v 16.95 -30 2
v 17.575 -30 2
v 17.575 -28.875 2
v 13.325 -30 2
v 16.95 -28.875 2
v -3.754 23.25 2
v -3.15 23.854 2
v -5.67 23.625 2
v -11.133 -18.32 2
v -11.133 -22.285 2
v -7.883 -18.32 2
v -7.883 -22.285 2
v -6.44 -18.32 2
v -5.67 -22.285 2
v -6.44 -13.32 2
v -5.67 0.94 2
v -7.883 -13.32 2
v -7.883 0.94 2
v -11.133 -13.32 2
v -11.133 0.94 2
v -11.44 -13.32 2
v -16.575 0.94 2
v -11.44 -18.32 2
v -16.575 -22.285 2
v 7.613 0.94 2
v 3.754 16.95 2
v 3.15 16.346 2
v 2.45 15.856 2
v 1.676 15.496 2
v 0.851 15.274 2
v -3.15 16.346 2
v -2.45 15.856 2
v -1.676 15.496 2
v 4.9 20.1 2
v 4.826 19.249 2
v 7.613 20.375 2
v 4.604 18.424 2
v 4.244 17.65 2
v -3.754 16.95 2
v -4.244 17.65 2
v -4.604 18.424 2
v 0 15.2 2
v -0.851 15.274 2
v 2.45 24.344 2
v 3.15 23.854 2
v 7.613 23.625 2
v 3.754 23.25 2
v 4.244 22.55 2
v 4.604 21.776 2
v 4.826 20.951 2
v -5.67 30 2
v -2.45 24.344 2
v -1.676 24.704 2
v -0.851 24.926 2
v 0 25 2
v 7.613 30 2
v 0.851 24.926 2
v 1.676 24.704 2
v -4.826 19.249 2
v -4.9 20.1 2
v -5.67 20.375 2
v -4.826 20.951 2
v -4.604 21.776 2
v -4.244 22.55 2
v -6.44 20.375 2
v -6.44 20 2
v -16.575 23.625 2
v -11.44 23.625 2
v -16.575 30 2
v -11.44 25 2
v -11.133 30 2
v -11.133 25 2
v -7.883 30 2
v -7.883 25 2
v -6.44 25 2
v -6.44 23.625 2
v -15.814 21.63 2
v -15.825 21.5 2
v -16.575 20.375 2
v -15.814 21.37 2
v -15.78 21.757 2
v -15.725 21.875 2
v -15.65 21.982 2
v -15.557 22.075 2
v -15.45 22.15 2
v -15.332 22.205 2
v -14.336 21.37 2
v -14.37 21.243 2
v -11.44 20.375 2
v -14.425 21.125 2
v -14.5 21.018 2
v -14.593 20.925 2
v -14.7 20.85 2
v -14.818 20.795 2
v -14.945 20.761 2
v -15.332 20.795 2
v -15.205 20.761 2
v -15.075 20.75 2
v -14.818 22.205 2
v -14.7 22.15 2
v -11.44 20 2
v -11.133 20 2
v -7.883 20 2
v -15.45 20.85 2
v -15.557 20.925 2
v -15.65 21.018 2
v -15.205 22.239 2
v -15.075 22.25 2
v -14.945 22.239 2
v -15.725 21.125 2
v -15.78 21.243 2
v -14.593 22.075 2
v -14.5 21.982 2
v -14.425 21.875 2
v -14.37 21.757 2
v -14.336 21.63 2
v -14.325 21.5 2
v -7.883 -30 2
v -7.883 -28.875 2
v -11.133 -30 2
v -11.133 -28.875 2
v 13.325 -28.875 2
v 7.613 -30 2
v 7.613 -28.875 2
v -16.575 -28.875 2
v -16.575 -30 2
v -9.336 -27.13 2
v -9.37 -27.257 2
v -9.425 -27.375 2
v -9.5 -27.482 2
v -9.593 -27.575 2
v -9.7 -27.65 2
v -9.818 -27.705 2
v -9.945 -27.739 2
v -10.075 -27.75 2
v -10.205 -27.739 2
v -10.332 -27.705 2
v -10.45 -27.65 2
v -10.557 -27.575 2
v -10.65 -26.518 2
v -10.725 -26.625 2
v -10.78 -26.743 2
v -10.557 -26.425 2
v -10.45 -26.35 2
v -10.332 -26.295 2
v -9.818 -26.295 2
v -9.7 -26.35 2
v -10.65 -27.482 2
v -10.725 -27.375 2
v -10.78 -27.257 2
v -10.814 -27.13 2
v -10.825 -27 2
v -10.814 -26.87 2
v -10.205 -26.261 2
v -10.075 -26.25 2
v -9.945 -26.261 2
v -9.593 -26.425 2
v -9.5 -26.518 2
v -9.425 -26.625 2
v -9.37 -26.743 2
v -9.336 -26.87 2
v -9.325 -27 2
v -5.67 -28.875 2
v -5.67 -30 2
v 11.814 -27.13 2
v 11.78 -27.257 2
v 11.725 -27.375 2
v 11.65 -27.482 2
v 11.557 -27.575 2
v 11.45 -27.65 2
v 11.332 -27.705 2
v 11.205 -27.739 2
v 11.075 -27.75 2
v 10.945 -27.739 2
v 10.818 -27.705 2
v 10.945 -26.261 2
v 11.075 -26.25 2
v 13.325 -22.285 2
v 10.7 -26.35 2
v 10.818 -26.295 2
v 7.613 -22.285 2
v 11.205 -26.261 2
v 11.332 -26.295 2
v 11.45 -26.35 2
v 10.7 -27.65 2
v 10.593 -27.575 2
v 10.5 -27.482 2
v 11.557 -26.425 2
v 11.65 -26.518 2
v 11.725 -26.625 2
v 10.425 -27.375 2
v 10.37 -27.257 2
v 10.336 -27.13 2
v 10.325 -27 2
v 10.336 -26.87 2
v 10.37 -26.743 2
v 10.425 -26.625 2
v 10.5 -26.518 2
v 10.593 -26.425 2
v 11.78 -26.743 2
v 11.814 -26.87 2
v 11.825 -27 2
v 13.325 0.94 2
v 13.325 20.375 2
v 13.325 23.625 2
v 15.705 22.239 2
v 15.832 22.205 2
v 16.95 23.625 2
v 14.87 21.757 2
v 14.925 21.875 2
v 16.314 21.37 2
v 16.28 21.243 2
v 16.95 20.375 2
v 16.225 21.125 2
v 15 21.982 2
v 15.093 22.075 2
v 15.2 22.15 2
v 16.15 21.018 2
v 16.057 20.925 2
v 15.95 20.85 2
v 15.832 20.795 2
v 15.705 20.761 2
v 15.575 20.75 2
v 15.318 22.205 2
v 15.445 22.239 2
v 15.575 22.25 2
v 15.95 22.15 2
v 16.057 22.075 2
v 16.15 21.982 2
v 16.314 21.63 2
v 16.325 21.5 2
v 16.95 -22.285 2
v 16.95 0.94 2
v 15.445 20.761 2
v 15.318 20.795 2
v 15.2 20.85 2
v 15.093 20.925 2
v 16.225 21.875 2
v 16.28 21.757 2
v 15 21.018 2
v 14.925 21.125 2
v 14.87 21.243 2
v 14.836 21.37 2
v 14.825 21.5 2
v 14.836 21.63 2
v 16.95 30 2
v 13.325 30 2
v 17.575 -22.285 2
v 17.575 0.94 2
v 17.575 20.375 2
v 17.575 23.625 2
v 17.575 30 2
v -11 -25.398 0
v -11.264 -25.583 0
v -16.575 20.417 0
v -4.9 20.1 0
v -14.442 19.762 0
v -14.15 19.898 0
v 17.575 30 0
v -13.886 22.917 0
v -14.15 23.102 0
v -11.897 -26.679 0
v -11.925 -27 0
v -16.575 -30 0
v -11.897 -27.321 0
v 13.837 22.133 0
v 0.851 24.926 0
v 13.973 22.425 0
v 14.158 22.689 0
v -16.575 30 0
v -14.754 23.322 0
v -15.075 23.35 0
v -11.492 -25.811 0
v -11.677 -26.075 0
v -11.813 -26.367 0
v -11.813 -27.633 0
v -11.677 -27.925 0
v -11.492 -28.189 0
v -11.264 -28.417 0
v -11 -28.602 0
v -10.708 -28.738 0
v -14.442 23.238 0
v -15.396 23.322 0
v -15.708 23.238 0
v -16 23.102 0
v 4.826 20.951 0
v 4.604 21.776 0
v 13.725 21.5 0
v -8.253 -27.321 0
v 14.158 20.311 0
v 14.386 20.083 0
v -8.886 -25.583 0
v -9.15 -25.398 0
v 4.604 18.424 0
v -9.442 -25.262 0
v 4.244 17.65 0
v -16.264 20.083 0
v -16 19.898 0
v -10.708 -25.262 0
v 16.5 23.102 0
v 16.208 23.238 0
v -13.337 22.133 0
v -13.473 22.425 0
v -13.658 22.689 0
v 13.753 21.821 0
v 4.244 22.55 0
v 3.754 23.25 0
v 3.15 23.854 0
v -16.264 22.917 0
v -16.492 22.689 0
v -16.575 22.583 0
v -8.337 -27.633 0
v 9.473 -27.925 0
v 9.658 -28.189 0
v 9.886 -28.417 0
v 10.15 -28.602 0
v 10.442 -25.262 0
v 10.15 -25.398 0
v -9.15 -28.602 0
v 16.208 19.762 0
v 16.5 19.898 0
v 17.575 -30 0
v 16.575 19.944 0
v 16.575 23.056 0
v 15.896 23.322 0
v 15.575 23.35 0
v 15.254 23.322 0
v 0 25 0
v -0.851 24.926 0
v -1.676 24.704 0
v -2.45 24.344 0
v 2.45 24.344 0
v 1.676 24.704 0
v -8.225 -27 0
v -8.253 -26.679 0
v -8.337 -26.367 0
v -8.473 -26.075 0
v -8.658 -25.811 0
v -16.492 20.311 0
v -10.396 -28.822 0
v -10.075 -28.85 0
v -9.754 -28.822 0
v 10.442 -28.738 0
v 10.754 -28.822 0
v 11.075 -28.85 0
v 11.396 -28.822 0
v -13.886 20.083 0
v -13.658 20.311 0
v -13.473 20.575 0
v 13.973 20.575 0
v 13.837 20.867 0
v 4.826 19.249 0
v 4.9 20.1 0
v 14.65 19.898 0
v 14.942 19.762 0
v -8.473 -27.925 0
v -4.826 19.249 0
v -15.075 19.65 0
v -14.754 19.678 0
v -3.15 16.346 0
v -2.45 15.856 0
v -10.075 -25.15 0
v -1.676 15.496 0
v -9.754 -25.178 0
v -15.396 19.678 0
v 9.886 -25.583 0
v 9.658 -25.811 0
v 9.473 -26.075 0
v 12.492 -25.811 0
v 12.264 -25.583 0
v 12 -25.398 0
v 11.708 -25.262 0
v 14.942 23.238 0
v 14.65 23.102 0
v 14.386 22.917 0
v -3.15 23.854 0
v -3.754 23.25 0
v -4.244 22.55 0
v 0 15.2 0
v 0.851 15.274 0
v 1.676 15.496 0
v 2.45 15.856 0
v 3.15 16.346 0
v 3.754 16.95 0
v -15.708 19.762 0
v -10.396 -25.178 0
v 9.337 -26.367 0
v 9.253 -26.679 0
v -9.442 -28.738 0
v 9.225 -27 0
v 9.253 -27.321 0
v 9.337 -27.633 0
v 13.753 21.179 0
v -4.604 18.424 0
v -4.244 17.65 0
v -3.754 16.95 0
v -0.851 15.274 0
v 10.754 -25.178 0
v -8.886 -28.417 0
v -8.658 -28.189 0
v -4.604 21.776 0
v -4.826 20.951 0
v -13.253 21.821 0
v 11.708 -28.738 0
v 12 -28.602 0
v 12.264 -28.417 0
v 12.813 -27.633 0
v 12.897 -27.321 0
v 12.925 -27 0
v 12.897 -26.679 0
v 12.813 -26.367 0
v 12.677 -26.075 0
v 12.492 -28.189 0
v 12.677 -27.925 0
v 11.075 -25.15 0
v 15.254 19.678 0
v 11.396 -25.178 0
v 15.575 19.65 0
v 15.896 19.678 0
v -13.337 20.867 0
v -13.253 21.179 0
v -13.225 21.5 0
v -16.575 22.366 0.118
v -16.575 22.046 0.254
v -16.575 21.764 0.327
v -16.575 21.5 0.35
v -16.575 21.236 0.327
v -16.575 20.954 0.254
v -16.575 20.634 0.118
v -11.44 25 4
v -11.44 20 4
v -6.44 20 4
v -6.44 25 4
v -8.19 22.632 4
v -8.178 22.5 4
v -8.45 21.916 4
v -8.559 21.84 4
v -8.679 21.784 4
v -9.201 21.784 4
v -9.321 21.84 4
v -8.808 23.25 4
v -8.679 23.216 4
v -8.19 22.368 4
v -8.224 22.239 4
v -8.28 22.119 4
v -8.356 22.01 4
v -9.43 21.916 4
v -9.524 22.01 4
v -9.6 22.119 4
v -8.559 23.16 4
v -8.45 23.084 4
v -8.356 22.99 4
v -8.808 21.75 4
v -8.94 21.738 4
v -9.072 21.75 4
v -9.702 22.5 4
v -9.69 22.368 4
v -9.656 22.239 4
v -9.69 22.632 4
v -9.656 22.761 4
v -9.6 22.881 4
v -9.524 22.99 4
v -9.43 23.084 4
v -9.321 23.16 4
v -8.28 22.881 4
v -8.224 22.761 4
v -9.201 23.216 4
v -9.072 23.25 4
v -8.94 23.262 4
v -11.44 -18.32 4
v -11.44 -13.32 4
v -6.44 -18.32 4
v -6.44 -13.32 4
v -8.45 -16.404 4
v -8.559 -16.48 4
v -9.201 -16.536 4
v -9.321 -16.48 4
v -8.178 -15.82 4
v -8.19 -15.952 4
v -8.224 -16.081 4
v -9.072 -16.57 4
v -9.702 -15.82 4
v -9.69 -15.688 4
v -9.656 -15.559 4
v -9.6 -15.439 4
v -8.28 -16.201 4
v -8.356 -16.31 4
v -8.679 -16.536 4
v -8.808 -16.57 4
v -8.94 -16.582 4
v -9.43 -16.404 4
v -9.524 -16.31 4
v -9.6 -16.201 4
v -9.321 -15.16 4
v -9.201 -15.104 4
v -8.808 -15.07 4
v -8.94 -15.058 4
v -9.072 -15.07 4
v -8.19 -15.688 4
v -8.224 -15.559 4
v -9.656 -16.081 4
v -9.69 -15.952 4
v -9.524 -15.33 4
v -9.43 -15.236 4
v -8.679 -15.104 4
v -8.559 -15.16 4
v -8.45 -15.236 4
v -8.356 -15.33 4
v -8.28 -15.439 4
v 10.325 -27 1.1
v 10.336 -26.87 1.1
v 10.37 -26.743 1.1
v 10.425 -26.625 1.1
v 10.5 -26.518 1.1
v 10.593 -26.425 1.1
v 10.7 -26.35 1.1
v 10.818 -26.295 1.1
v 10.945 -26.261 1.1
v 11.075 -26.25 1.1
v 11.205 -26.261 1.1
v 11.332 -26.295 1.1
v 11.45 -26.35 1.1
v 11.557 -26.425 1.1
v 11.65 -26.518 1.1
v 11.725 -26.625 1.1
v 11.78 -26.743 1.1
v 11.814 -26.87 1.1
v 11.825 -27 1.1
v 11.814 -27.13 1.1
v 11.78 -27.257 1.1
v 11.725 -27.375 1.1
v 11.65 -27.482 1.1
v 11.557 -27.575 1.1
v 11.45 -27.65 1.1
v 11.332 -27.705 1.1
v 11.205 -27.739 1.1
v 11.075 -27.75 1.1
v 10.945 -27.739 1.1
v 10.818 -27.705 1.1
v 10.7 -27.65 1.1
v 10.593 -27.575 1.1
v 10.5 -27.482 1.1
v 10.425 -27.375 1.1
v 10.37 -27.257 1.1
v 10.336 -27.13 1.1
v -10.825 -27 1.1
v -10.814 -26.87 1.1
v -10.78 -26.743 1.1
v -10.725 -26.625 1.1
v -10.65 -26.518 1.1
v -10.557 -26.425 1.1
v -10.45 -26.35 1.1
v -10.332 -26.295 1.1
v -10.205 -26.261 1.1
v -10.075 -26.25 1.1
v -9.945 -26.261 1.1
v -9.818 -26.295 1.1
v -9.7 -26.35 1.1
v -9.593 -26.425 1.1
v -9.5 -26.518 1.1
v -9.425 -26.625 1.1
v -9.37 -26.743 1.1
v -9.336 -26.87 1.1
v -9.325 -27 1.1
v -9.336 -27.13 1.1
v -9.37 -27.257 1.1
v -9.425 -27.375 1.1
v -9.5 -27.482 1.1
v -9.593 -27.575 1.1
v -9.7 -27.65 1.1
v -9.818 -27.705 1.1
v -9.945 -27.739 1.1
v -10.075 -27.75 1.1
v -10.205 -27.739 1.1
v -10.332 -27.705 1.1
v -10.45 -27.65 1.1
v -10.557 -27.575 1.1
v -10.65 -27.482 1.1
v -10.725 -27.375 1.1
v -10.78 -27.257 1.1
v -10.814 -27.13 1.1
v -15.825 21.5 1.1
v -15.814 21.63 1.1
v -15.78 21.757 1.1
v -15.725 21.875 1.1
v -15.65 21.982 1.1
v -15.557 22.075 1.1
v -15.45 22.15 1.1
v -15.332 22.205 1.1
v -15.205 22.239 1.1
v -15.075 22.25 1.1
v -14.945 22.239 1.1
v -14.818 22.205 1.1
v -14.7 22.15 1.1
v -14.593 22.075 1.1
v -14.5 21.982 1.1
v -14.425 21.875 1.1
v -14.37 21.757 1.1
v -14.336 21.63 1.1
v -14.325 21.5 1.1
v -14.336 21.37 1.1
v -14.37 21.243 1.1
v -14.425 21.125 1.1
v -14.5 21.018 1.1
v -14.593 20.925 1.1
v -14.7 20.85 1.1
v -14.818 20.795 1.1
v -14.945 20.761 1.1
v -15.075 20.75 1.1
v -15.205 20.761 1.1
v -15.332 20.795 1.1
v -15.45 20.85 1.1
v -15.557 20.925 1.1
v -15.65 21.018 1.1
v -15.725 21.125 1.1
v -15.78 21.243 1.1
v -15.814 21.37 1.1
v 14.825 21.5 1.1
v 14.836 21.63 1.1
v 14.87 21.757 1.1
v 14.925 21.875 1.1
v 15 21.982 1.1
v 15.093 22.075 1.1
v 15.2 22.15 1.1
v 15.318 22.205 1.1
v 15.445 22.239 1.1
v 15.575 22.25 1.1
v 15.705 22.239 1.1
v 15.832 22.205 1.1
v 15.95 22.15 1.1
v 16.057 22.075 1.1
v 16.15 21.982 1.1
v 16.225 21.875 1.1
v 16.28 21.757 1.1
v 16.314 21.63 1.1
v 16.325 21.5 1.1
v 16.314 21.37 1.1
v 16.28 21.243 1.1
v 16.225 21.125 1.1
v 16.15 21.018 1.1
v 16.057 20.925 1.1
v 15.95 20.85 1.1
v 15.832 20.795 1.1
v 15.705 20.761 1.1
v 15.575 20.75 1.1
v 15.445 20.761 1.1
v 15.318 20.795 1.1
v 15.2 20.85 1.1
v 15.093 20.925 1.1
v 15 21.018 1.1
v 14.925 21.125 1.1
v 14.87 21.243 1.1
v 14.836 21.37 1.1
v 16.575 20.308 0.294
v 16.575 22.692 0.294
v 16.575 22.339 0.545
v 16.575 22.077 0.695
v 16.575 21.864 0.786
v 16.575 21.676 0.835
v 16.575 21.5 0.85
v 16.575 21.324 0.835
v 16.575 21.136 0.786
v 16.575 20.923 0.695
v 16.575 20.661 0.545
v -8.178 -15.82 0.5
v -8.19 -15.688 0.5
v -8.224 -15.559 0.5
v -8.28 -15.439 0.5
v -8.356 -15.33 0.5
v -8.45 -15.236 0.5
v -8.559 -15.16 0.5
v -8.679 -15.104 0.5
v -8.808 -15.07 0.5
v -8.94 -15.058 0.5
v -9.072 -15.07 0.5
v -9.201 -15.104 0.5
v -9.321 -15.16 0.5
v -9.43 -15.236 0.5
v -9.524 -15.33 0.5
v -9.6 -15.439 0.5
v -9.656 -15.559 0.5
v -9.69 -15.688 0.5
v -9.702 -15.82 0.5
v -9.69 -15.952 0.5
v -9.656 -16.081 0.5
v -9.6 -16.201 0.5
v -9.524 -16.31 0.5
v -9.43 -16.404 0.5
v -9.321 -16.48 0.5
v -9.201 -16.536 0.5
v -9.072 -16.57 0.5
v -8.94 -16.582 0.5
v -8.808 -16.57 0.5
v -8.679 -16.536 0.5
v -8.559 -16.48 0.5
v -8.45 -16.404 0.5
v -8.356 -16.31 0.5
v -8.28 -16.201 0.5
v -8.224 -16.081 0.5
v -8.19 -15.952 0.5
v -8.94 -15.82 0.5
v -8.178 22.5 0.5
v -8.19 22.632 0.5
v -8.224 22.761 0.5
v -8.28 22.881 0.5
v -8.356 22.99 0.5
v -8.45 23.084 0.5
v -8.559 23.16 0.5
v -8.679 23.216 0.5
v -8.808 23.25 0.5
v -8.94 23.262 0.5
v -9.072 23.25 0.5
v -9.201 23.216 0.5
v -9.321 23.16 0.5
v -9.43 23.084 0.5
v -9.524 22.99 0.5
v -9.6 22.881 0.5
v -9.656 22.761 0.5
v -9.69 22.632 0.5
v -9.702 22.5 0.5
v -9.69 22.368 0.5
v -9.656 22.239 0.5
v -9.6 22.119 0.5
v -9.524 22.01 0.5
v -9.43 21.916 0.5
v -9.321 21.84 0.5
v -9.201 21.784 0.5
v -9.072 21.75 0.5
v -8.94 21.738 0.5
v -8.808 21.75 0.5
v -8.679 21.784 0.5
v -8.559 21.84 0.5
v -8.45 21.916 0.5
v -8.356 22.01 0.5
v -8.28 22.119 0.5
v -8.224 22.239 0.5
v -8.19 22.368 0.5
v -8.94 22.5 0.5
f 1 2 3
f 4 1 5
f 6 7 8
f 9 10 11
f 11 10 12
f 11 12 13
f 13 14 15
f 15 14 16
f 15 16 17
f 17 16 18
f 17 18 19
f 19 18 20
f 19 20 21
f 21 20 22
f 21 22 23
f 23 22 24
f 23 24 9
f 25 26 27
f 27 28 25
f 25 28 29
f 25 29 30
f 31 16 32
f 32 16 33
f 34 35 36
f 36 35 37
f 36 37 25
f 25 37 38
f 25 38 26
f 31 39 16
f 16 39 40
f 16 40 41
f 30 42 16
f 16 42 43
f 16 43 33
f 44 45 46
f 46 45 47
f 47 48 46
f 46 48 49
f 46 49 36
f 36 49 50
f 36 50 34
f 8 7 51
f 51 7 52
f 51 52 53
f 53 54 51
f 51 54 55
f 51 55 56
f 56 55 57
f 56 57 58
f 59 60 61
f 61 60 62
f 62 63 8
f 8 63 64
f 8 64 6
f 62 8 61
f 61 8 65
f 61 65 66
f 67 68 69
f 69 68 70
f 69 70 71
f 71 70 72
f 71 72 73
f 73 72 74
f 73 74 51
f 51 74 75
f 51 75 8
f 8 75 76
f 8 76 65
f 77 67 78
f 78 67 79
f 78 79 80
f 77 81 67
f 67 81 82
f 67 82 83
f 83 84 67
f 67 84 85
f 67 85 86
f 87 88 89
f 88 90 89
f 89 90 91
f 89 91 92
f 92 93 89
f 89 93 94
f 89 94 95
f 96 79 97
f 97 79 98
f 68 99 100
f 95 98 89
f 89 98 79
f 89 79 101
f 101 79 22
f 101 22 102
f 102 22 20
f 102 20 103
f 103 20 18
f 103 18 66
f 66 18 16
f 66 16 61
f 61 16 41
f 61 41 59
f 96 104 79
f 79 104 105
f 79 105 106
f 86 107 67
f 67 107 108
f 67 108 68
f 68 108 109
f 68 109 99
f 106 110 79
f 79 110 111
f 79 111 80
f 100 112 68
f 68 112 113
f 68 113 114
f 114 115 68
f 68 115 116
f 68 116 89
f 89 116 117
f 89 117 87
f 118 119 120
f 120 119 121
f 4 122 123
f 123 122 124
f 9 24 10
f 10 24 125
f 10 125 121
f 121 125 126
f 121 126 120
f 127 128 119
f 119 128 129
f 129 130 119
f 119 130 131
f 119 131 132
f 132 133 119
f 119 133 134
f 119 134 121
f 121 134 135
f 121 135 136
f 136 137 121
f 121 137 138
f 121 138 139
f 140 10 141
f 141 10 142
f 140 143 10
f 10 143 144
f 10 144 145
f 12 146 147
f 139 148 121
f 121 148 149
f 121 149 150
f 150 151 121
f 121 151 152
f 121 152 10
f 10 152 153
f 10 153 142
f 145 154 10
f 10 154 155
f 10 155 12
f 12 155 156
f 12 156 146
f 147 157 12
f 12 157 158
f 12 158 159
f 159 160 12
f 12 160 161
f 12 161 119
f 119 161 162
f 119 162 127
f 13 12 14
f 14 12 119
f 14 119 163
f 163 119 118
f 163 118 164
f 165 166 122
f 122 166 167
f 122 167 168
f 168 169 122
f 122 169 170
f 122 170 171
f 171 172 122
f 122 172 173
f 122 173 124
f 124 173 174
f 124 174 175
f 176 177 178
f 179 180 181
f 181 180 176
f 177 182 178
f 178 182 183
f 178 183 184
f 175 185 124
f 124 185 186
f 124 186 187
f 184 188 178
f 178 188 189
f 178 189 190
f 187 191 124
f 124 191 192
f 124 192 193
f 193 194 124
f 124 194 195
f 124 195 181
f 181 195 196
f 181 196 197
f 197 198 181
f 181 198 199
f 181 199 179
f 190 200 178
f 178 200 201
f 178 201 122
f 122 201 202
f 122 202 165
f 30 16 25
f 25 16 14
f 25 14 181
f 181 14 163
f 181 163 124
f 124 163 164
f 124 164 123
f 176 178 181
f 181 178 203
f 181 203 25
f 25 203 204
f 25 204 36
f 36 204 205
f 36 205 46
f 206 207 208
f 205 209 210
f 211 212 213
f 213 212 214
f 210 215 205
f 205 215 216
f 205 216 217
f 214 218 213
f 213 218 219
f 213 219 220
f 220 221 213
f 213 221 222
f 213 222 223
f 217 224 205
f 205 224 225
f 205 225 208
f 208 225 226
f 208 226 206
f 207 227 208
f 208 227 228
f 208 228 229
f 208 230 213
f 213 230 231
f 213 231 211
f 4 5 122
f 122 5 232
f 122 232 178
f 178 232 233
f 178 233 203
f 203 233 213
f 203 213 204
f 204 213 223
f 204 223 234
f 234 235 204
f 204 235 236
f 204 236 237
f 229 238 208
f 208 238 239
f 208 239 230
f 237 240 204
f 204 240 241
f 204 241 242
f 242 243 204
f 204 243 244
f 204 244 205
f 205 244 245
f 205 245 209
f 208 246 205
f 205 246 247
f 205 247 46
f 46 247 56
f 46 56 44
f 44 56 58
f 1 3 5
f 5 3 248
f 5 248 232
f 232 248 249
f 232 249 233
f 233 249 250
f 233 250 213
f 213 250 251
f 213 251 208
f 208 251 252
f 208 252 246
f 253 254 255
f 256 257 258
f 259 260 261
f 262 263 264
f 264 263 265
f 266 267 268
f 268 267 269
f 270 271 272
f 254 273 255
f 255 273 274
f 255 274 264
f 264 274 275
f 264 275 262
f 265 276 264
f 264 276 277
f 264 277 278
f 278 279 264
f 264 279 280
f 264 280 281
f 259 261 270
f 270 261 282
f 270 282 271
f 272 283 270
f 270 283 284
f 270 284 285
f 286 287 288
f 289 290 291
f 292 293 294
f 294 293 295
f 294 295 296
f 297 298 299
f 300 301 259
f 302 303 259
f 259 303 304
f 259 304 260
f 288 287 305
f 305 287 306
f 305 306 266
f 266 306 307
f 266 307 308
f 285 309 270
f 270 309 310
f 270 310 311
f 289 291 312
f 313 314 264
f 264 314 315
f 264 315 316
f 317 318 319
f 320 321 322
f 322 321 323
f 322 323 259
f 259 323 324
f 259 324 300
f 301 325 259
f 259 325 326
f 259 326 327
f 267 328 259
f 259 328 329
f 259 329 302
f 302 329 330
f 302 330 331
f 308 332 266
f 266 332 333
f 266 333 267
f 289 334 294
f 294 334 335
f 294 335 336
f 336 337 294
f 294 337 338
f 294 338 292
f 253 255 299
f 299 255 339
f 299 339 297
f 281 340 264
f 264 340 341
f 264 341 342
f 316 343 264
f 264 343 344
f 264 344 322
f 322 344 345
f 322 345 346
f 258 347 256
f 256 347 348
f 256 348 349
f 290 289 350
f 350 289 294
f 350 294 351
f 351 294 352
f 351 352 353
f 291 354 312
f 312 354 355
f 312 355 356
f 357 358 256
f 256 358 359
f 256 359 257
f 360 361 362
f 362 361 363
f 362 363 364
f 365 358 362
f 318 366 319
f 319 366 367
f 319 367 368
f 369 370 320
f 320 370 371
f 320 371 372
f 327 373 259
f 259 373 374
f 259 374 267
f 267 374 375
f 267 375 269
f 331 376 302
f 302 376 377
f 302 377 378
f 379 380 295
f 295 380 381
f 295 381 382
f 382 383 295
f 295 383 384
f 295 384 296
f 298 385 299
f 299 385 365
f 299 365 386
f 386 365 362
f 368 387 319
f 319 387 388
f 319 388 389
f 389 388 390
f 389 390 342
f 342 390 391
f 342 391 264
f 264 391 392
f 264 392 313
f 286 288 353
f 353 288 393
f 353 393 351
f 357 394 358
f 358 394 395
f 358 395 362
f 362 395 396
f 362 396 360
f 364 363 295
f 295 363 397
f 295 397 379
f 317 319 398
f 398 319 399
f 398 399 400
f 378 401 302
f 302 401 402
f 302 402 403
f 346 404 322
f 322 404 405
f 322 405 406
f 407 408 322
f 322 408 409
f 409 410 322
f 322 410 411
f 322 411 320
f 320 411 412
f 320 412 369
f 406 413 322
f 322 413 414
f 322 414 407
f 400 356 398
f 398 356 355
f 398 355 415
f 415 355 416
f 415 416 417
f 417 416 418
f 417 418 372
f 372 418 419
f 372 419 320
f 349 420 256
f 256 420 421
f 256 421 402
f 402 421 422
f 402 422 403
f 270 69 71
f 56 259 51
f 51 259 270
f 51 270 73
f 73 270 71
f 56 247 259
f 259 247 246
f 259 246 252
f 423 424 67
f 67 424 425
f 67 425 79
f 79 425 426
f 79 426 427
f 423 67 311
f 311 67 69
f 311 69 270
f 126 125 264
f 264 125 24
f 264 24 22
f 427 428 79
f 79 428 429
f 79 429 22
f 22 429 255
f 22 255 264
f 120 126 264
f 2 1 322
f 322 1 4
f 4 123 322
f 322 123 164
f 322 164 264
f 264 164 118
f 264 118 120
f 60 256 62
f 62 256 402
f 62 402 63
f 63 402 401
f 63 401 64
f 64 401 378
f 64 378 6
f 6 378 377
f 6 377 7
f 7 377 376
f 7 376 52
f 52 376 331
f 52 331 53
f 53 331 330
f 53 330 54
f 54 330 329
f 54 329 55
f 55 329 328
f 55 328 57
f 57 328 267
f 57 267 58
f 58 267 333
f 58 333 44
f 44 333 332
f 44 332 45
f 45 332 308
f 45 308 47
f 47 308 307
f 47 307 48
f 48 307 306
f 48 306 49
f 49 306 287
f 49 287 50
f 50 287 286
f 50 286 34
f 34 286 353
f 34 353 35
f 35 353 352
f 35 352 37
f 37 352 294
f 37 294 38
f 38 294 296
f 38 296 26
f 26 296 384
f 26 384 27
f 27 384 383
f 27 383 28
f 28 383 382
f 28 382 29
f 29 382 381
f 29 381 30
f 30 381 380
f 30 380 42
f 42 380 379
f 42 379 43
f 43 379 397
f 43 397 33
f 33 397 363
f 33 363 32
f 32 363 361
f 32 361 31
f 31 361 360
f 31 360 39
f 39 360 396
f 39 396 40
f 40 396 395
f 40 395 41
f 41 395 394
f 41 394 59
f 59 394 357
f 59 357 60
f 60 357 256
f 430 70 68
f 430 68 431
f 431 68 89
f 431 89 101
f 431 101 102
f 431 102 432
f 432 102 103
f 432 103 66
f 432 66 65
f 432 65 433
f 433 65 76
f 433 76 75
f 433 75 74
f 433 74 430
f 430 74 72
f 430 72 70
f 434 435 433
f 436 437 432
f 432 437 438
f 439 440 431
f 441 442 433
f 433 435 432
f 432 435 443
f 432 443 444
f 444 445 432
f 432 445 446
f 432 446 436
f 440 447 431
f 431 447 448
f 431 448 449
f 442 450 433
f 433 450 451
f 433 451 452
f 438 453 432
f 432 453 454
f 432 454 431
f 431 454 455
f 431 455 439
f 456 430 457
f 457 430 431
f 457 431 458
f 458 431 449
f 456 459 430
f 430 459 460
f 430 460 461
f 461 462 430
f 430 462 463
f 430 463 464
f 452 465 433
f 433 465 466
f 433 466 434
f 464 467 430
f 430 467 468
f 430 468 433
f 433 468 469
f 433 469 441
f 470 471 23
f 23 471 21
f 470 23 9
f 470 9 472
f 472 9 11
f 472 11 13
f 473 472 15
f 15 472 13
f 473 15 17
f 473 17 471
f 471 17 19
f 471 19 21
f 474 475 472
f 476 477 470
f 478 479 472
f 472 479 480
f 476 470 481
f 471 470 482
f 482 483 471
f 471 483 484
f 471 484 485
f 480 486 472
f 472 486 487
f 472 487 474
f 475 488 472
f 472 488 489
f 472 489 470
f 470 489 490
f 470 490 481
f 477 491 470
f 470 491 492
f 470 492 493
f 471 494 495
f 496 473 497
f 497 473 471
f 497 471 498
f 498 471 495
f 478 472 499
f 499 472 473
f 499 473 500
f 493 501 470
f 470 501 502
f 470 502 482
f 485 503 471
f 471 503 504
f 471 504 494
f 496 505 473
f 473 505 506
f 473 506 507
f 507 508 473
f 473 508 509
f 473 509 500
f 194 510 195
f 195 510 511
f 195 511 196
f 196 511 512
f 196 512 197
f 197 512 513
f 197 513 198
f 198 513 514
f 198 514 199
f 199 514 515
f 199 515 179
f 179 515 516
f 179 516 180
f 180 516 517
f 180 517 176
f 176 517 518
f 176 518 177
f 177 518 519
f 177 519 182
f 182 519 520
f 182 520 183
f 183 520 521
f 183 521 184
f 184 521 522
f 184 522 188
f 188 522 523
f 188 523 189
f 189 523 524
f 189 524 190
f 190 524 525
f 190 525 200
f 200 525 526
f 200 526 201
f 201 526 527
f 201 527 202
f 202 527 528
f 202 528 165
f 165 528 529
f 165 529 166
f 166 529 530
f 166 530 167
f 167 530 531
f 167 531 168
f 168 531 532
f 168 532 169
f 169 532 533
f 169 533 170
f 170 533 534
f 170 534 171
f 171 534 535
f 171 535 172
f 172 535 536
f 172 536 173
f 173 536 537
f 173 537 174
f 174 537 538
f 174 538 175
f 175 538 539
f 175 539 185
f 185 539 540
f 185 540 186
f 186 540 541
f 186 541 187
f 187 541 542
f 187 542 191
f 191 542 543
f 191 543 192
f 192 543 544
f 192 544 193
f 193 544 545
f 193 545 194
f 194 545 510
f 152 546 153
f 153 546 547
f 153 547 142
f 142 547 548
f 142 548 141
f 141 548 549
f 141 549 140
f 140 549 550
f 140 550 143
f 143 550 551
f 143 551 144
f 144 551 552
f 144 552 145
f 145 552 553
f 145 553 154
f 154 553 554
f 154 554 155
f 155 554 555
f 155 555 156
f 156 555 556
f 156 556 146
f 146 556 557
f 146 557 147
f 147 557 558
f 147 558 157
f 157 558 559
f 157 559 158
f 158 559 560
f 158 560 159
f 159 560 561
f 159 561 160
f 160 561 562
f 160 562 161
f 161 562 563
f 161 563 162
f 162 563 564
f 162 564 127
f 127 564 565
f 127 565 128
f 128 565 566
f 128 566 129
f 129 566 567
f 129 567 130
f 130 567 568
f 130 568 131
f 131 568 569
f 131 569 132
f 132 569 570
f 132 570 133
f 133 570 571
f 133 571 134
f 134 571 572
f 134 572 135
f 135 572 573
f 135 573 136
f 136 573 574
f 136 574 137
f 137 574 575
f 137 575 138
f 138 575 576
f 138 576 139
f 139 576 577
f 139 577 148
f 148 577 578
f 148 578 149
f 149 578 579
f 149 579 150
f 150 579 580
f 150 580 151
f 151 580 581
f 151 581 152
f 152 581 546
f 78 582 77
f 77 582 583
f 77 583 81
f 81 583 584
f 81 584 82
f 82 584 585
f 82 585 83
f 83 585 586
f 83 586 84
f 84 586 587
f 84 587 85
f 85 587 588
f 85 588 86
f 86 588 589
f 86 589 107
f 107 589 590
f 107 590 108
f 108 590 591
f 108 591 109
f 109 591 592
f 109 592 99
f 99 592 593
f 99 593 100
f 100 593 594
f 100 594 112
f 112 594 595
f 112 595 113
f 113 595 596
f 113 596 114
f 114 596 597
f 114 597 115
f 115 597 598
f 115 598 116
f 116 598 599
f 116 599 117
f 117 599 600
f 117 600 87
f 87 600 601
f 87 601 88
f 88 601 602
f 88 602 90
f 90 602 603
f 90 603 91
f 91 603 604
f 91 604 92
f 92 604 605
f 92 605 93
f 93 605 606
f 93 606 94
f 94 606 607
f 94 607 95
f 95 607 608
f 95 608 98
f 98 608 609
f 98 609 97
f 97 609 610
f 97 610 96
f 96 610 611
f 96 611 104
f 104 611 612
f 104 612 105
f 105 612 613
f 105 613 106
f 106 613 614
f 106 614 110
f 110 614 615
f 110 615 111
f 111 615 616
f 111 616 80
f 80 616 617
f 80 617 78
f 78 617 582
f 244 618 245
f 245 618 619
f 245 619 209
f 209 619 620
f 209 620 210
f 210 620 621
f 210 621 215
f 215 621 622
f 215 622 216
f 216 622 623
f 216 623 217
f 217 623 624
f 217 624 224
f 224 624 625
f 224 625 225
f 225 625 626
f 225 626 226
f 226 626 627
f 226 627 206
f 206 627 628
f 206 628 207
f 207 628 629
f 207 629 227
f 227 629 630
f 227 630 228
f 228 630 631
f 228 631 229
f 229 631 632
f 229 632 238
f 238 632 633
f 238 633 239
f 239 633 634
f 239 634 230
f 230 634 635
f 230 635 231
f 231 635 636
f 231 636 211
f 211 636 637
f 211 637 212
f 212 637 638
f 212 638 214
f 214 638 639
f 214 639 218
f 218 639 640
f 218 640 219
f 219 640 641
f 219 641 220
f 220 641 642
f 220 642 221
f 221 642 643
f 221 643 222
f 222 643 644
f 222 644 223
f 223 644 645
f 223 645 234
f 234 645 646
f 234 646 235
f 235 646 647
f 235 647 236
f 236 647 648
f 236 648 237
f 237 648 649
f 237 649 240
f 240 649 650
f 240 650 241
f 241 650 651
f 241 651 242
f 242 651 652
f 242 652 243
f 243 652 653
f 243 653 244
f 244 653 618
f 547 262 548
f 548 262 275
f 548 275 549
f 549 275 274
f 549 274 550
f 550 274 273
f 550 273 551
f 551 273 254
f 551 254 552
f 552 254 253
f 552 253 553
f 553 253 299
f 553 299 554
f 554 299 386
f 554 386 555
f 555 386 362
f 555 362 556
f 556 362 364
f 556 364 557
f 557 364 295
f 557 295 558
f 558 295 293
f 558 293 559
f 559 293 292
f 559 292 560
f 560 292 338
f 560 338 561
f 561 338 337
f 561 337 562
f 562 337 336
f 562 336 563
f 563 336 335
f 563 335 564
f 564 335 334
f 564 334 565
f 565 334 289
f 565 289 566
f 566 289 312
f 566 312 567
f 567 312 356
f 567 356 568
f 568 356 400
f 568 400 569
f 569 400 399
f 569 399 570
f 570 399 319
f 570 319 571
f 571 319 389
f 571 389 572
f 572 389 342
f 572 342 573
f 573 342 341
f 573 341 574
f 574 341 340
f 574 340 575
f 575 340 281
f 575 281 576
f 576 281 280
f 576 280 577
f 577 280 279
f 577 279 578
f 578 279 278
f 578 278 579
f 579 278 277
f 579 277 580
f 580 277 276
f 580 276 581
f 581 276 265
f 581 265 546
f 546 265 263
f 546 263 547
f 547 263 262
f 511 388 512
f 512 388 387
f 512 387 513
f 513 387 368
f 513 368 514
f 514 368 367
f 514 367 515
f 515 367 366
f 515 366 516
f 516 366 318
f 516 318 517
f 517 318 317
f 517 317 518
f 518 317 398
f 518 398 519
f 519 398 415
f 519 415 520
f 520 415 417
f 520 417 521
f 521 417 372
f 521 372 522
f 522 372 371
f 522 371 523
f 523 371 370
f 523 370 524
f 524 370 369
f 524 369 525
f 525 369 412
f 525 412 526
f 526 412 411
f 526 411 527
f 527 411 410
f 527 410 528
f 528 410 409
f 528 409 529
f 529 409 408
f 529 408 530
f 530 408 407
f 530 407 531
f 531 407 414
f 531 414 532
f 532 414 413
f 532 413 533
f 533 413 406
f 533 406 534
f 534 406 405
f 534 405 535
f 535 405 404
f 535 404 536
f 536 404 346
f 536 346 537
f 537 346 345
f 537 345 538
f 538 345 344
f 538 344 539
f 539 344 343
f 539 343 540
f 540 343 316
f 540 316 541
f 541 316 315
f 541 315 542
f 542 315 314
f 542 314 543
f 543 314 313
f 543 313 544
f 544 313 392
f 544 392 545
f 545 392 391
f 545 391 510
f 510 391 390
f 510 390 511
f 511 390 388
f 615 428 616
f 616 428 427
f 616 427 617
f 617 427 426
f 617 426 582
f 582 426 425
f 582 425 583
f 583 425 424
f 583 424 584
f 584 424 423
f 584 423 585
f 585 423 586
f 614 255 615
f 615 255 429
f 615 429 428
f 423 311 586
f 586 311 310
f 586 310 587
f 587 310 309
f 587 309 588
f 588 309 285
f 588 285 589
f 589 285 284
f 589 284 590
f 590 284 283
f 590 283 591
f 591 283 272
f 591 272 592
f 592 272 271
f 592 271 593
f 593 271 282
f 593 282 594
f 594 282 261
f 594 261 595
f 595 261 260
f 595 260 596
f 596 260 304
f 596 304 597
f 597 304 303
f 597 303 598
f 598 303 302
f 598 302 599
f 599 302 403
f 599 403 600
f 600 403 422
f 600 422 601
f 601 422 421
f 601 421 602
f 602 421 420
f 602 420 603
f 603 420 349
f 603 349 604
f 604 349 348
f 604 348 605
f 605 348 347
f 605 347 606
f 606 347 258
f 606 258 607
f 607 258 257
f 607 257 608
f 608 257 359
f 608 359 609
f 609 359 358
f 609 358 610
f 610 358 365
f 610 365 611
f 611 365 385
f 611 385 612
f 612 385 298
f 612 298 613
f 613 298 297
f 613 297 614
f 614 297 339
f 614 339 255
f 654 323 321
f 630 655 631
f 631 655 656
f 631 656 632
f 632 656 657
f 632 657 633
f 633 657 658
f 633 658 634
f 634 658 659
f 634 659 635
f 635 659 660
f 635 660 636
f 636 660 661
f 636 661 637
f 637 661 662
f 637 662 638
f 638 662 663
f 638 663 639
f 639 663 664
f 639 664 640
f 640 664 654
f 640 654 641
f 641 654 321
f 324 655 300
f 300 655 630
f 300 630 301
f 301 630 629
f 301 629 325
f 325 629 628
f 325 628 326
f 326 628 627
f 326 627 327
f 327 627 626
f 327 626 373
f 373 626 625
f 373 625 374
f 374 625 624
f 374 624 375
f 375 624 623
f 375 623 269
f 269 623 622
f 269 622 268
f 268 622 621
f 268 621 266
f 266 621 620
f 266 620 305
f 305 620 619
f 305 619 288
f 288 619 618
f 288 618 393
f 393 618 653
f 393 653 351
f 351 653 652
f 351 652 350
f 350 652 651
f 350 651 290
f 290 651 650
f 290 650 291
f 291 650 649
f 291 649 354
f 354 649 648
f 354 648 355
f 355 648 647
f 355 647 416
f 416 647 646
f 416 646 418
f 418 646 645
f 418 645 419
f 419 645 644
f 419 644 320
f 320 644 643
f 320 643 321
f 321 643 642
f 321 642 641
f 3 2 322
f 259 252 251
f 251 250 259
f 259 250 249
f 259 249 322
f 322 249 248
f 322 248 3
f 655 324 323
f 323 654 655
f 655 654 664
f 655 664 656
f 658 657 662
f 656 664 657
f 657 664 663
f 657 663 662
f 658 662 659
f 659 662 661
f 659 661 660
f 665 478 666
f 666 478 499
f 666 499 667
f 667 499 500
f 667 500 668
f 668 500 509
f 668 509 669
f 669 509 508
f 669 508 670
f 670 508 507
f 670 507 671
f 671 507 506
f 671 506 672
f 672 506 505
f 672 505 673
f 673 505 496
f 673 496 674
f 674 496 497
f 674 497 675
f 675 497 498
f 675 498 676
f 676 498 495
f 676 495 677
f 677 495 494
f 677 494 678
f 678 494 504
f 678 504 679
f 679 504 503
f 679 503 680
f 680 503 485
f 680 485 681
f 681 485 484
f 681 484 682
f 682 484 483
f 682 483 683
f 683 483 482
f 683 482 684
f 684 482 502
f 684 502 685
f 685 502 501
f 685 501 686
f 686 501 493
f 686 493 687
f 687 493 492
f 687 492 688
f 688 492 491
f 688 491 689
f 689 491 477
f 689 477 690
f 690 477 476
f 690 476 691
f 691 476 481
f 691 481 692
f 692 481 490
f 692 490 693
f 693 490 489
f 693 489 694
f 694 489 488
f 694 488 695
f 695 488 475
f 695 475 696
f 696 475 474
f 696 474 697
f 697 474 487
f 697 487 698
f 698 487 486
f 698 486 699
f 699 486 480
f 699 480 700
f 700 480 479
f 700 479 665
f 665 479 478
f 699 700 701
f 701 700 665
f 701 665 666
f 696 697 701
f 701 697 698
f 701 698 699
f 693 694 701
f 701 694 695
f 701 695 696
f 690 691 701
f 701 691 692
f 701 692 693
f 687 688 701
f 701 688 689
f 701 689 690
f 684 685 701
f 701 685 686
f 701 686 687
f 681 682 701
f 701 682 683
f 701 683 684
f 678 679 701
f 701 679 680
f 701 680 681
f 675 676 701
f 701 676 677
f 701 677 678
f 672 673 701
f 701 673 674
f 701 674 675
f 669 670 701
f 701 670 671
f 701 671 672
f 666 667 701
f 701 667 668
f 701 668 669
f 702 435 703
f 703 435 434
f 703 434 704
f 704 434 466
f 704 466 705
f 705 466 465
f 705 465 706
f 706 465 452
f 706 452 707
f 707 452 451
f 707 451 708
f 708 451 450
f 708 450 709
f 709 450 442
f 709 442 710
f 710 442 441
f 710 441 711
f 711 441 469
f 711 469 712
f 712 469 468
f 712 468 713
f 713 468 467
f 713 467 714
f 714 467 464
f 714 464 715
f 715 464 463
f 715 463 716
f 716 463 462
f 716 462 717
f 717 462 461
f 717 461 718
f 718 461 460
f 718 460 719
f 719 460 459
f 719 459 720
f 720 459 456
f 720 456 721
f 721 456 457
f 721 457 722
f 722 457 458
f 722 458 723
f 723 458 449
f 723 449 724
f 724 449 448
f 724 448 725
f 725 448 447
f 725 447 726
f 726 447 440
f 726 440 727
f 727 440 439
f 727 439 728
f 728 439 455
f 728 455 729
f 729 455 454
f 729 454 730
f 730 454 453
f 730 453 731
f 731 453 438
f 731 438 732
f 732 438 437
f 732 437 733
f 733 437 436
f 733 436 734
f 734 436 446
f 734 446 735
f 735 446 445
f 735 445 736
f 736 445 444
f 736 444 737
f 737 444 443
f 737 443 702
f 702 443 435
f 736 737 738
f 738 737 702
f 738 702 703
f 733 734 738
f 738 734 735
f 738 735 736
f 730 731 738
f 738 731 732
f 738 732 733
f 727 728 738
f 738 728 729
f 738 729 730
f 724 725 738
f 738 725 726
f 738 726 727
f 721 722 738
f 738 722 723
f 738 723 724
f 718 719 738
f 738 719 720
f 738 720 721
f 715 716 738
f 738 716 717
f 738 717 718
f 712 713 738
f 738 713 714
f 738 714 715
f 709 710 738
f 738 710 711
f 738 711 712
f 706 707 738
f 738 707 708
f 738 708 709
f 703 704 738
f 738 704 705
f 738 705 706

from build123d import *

# Parameters (mm, degrees)
SKETCH1_W           = 33.15
SKETCH1_H           = 60
SKETCH1_R           = 4.9
BOSS_EXTRUDE1_DEPTH = 2
SKETCH3_W           = 5
SKETCH3_H           = 5
BOSS_EXTRUDE2_DEPTH = 2
SKETCH4_R           = 0.75
CUT_EXTRUDE1_DEPTH  = 2
CHAMFER1_SIZE       = 1.1
SKETCH5_W           = 2
SKETCH5_H           = 60
BOSS_EXTRUDE3_DEPTH = 1
SKETCH7_R           = 0.762
CUT_EXTRUDE2_DEPTH  = 3.5


with BuildPart() as part:
    # Sketch1 → Boss-Extrude1 (new body)
    with BuildSketch(Plane.XY):
        Rectangle(SKETCH1_W, SKETCH1_H)
        with Locations((0, 20.1)):
            Circle(SKETCH1_R, mode=Mode.SUBTRACT)
    extrude(amount=BOSS_EXTRUDE1_DEPTH)

    # Sketch3 → Boss-Extrude2 (add)
    with BuildSketch(Plane.XY.offset(2)):
        with Locations((-8.94, 22.5)):
            Rectangle(SKETCH3_W, SKETCH3_H)
        with Locations((-8.94, -15.82)):
            Rectangle(SKETCH3_W, SKETCH3_H)
    extrude(amount=BOSS_EXTRUDE2_DEPTH)

    # Sketch4 → Cut-Extrude1 (cut)
    with BuildSketch(Plane(origin=(0, 0, 0), x_dir=(-1, 0, 0), z_dir=(0, 0, -1))):
        with Locations((-15.575, 21.5)):
            Circle(SKETCH4_R)
        with Locations((15.075, 21.5)):
            Circle(SKETCH4_R)
        with Locations((10.075, -27)):
            Circle(SKETCH4_R)
        with Locations((-11.075, -27)):
            Circle(SKETCH4_R)
    extrude(amount=-CUT_EXTRUDE1_DEPTH, mode=Mode.SUBTRACT)

    # Chamfer1
    # the kernel refuses this chamfer: 1.1 mm, written as the material it takes off along each edge
    with BuildSketch(Plane(origin=(15.575, 21.5, 0), x_dir=(-1, 0, 0), z_dir=(0, -1, 0))) as chamfer1_piece_1:
        Polygon((0.75 + CHAMFER1_SIZE, 0), (0.75, -CHAMFER1_SIZE), (0.75, 0), align=None)
    revolve(axis=Axis((15.575, 21.5, 0), (0, 0, -1)), mode=Mode.SUBTRACT)
    with BuildSketch(Plane(origin=(-15.075, 21.5, 0), x_dir=(-1, 0, 0), z_dir=(0, -1, 0))) as chamfer1_piece_2:
        Polygon((0.75 + CHAMFER1_SIZE, 0), (0.75, -CHAMFER1_SIZE), (0.75, 0), align=None)
    revolve(axis=Axis((-15.075, 21.5, 0), (0, 0, -1)), mode=Mode.SUBTRACT)
    with BuildSketch(Plane(origin=(-10.075, -27, 0), x_dir=(-1, 0, 0), z_dir=(0, -1, 0))) as chamfer1_piece_3:
        Polygon((0.75 + CHAMFER1_SIZE, 0), (0.75, -CHAMFER1_SIZE), (0.75, 0), align=None)
    revolve(axis=Axis((-10.075, -27, 0), (0, 0, -1)), mode=Mode.SUBTRACT)
    with BuildSketch(Plane(origin=(11.075, -27, 0), x_dir=(-1, 0, 0), z_dir=(0, -1, 0))) as chamfer1_piece_4:
        Polygon((0.75 + CHAMFER1_SIZE, 0), (0.75, -CHAMFER1_SIZE), (0.75, 0), align=None)
    revolve(axis=Axis((11.075, -27, 0), (0, 0, -1)), mode=Mode.SUBTRACT)

    # Sketch5 → Boss-Extrude3 (add)
    with BuildSketch(Plane(origin=(16.575, 0, 0), x_dir=(0, 0, -1), z_dir=(1, 0, 0))):
        with Locations((-1, 0)):
            Rectangle(SKETCH5_W, SKETCH5_H)
    extrude(amount=BOSS_EXTRUDE3_DEPTH)

    # Sketch7 → Cut-Extrude2 (cut)
    with BuildSketch(Plane.XY.offset(4)):
        with Locations((-8.94, 22.5)):
            Circle(SKETCH7_R)
        with Locations((-8.94, -15.82)):
            Circle(SKETCH7_R)
    extrude(amount=-CUT_EXTRUDE2_DEPTH, mode=Mode.SUBTRACT)


solid = part.part
